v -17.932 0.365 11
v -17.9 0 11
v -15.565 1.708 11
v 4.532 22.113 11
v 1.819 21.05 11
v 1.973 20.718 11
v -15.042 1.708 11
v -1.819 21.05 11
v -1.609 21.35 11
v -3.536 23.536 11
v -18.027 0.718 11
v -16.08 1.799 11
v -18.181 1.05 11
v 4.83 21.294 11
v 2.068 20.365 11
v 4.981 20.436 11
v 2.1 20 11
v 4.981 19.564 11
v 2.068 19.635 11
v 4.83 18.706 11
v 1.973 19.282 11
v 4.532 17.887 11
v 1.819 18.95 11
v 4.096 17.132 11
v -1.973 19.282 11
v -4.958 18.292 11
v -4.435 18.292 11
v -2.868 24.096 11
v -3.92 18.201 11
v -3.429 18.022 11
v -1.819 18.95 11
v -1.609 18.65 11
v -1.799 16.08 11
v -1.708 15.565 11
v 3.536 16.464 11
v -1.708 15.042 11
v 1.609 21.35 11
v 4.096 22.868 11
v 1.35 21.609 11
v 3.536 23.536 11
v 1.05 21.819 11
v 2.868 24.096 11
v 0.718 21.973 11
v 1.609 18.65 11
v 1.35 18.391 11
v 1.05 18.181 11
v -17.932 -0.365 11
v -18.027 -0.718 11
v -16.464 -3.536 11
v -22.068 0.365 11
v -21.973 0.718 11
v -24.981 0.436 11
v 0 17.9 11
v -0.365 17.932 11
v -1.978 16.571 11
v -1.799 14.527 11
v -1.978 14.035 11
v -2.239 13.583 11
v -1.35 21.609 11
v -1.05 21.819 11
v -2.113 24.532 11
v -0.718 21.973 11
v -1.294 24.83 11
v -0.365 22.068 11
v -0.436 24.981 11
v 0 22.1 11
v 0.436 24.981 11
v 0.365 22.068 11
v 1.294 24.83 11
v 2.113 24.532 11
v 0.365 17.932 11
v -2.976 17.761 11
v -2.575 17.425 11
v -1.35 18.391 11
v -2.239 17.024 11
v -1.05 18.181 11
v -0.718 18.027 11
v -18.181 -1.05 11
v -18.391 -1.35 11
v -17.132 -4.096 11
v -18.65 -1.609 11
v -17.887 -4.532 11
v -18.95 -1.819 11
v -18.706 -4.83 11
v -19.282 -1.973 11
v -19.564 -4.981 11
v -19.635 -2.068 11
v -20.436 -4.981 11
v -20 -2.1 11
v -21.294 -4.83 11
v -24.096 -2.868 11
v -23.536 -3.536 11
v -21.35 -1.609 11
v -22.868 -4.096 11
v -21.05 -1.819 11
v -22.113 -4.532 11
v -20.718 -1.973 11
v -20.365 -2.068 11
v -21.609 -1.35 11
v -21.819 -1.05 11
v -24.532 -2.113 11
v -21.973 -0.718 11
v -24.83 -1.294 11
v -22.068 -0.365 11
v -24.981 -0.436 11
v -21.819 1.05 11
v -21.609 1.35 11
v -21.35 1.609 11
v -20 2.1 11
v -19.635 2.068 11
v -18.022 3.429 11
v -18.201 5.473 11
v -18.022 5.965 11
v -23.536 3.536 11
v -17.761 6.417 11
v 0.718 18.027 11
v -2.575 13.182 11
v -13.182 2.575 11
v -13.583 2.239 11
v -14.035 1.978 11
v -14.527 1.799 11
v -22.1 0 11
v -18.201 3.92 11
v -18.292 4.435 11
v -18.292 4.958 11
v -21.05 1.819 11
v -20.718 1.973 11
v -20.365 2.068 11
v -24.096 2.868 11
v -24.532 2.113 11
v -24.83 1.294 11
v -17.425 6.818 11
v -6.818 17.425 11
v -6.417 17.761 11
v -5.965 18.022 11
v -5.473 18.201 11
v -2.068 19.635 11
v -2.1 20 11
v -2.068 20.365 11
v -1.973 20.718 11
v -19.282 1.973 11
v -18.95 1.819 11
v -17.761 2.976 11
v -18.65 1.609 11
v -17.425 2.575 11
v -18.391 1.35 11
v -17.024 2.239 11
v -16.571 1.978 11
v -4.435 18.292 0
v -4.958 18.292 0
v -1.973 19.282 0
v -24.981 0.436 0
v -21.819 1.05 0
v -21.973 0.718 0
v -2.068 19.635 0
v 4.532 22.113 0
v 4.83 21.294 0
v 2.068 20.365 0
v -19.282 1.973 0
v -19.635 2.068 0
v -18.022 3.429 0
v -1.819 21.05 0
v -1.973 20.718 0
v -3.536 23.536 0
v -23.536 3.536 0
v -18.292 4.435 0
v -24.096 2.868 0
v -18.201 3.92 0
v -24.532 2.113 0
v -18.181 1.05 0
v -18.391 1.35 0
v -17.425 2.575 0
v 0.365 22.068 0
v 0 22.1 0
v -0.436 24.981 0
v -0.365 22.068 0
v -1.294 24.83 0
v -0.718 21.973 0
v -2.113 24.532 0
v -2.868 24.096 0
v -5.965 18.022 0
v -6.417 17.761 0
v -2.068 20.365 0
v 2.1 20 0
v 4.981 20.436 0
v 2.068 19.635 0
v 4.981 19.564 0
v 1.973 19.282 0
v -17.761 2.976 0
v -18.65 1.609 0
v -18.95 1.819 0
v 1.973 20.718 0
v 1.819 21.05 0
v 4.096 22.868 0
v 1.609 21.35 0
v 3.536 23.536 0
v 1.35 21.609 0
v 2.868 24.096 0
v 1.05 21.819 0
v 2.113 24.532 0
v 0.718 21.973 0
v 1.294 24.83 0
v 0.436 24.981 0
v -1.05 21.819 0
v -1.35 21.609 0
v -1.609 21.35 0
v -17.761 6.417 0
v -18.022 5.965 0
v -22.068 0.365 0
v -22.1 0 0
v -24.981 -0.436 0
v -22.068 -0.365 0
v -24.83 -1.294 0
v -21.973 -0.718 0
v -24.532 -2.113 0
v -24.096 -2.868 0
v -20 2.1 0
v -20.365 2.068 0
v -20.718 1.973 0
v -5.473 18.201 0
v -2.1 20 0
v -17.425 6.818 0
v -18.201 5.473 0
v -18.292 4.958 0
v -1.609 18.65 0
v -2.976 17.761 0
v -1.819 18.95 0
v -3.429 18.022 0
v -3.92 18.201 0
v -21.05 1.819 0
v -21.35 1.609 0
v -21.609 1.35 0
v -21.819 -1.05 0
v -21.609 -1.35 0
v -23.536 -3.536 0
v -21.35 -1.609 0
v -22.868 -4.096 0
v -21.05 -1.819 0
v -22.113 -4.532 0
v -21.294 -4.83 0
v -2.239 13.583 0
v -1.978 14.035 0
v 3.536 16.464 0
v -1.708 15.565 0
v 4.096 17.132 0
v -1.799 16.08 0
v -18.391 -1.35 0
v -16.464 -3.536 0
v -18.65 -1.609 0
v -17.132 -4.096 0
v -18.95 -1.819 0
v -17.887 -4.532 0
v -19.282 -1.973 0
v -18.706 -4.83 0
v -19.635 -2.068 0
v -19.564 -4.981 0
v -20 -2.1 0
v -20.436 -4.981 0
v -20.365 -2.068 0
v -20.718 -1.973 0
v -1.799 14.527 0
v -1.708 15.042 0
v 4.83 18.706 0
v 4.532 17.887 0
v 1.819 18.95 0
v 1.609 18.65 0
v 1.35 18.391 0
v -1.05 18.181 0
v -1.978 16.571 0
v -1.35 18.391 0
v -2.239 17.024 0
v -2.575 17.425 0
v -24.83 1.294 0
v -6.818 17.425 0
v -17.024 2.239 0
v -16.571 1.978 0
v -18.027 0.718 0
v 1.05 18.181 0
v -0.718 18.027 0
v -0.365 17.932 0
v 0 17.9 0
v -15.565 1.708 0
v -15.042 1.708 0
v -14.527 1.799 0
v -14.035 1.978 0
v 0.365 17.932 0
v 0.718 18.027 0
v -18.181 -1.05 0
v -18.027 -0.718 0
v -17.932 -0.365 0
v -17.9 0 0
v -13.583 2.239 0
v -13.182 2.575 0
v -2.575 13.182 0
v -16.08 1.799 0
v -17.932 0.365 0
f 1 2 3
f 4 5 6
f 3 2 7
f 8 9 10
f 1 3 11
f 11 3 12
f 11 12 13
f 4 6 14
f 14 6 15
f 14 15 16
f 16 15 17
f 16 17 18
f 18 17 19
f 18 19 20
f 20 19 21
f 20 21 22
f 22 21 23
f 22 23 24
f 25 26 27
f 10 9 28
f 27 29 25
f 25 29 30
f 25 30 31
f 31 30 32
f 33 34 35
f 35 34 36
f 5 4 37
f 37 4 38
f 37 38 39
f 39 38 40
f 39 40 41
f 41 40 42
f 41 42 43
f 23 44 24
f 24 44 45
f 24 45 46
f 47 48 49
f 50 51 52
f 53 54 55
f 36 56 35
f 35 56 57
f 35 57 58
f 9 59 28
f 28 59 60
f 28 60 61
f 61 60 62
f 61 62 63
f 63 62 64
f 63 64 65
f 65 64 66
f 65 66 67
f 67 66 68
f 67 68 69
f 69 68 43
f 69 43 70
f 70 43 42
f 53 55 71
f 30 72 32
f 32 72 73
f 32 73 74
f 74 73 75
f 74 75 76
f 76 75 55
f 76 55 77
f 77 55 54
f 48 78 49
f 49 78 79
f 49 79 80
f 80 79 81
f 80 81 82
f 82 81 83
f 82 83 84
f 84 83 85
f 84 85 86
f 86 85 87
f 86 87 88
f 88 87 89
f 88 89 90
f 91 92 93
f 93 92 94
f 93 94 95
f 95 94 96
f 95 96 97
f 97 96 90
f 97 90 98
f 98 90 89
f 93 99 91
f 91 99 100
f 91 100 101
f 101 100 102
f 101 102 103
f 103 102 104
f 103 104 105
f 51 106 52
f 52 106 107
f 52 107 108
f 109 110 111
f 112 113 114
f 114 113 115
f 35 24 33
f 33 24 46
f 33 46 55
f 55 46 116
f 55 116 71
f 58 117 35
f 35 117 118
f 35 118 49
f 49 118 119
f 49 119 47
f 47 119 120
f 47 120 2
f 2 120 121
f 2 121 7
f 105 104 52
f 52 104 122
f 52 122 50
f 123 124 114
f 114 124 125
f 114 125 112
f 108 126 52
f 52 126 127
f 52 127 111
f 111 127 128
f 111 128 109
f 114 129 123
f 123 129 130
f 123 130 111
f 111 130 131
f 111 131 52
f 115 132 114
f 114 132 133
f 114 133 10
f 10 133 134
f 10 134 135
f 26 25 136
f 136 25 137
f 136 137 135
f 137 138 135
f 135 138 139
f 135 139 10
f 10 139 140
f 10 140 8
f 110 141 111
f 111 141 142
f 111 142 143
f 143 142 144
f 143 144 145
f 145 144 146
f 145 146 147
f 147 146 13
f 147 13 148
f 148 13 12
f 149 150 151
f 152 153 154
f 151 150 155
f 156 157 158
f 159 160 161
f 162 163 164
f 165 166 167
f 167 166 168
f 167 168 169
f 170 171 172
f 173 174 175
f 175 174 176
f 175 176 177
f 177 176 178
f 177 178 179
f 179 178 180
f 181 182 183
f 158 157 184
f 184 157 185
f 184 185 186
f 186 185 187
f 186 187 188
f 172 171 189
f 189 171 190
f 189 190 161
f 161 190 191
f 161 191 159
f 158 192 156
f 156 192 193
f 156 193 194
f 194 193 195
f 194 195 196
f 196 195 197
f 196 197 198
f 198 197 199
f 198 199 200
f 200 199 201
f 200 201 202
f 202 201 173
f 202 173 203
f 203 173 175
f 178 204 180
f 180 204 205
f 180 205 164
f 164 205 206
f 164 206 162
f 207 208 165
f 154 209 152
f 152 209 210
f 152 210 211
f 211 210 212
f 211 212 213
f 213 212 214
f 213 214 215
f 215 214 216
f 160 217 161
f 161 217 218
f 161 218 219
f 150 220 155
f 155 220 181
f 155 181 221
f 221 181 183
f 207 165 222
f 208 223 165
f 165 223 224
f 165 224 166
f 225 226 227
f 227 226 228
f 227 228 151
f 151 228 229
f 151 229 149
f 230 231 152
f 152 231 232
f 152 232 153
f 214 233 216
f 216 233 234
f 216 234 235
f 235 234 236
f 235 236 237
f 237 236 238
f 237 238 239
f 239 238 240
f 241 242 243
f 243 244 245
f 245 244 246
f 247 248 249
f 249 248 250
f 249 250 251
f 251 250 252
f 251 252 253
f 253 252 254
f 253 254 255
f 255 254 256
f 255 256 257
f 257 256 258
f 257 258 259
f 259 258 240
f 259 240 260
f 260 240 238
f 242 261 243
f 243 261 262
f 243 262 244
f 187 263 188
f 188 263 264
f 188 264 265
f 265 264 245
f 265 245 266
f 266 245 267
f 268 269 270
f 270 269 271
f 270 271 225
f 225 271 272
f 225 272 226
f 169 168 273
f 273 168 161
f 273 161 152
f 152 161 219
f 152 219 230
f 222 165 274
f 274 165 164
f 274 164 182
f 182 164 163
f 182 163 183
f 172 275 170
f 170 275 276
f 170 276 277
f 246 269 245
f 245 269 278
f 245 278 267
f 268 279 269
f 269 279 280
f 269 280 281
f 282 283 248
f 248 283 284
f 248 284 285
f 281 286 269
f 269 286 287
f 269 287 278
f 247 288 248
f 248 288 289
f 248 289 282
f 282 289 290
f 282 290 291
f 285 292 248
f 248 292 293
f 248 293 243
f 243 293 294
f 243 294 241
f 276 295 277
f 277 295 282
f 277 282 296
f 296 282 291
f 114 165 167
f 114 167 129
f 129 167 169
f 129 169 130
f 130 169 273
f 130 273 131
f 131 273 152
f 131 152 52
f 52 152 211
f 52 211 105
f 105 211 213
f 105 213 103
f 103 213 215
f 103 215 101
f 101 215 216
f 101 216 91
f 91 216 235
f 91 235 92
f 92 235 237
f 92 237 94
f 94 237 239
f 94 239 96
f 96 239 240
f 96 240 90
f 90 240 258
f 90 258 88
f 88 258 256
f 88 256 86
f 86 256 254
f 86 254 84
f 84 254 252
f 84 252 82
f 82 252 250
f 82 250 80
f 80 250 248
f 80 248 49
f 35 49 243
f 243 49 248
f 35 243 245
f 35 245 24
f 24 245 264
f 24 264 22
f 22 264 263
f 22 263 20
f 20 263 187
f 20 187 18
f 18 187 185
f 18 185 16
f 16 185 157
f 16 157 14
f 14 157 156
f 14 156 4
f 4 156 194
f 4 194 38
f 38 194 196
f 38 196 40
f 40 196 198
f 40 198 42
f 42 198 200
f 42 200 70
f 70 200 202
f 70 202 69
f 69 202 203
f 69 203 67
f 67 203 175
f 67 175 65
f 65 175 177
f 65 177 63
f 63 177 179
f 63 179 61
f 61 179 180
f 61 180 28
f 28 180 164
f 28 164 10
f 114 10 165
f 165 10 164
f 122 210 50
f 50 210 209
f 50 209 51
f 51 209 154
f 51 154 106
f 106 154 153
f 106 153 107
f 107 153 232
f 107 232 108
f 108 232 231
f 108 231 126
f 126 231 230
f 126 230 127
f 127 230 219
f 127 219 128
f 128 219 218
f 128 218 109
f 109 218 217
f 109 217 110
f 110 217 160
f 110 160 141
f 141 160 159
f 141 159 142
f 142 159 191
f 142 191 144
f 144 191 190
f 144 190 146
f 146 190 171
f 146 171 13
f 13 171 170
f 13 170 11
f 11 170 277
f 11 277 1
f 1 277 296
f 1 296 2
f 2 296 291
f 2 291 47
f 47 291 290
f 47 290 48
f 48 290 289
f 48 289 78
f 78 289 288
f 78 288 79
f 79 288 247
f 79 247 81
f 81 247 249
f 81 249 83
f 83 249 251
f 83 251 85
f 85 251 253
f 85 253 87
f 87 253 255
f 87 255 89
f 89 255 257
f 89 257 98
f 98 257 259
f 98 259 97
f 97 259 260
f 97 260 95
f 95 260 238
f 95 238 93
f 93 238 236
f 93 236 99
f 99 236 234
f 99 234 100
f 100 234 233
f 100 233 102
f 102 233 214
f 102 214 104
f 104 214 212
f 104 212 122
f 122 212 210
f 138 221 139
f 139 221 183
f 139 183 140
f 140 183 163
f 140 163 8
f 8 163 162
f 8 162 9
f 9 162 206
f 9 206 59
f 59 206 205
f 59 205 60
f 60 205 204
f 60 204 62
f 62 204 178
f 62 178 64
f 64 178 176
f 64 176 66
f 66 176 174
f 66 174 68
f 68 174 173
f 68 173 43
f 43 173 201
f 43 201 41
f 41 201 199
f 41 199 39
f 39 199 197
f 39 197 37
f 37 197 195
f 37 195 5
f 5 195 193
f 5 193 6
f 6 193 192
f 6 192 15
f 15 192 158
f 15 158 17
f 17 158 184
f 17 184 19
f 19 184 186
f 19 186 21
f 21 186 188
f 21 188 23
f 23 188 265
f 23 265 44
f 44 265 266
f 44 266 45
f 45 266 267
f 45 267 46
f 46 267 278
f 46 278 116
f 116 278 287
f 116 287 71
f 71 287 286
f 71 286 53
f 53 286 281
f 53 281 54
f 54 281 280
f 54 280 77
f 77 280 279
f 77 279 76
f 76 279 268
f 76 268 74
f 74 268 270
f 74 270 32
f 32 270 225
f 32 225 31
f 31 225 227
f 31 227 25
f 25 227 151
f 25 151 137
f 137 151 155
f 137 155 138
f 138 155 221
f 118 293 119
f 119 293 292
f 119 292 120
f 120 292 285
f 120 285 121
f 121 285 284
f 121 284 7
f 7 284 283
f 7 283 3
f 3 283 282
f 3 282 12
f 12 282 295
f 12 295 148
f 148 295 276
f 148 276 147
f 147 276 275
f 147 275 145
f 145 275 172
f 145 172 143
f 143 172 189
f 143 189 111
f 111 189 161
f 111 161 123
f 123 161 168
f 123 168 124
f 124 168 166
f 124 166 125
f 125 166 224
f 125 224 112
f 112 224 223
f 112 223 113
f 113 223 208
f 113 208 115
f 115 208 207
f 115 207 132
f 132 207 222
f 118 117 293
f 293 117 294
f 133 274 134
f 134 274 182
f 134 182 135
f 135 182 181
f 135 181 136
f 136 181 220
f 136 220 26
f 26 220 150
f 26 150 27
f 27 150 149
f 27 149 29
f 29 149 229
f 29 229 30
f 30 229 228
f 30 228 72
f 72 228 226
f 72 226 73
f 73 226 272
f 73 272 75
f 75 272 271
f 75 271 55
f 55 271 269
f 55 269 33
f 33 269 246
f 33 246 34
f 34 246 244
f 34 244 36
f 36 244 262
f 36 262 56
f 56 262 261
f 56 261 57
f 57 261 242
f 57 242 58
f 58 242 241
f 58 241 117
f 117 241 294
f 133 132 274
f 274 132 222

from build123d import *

# Parameters (mm, degrees)
ESQUISSE1_R        = 2.1
BOSS_EXTRU_1_DEPTH = 11


with BuildPart() as part:
    # Esquisse1 → Boss.-Extru.1 (new body)
    with BuildSketch(Plane.XY):
        with BuildLine():
            Line((-23.535533906, 3.535533906), (-3.535533906, 23.535533906))
            ThreePointArc((-3.535533906, 23.535533906), (3.535533906, 23.535533906), (3.535533906, 16.464466094))
            Line((3.535533906, 16.464466094), (-16.464466094, -3.535533906))
            ThreePointArc((-16.464466094, -3.535533906), (-23.535533906, -3.535533906), (-23.535533906, 3.535533906))
        make_face()
        with Locations((-20, 0)):
            Circle(ESQUISSE1_R, mode=Mode.SUBTRACT)
        with Locations((0, 20)):
            Circle(ESQUISSE1_R, mode=Mode.SUBTRACT)
        with BuildLine():
            Line((-17.424621202, 6.818019485), (-6.818019485, 17.424621202))
            ThreePointArc((-6.818019485, 17.424621202), (-2.575378798, 17.424621202), (-2.575378798, 13.181980515))
            Line((-2.575378798, 13.181980515), (-13.181980515, 2.575378798))
            ThreePointArc((-13.181980515, 2.575378798), (-17.424621202, 2.575378798), (-17.424621202, 6.818019485))
        make_face(mode=Mode.SUBTRACT)
    extrude(amount=BOSS_EXTRU_1_DEPTH)


solid = part.part
